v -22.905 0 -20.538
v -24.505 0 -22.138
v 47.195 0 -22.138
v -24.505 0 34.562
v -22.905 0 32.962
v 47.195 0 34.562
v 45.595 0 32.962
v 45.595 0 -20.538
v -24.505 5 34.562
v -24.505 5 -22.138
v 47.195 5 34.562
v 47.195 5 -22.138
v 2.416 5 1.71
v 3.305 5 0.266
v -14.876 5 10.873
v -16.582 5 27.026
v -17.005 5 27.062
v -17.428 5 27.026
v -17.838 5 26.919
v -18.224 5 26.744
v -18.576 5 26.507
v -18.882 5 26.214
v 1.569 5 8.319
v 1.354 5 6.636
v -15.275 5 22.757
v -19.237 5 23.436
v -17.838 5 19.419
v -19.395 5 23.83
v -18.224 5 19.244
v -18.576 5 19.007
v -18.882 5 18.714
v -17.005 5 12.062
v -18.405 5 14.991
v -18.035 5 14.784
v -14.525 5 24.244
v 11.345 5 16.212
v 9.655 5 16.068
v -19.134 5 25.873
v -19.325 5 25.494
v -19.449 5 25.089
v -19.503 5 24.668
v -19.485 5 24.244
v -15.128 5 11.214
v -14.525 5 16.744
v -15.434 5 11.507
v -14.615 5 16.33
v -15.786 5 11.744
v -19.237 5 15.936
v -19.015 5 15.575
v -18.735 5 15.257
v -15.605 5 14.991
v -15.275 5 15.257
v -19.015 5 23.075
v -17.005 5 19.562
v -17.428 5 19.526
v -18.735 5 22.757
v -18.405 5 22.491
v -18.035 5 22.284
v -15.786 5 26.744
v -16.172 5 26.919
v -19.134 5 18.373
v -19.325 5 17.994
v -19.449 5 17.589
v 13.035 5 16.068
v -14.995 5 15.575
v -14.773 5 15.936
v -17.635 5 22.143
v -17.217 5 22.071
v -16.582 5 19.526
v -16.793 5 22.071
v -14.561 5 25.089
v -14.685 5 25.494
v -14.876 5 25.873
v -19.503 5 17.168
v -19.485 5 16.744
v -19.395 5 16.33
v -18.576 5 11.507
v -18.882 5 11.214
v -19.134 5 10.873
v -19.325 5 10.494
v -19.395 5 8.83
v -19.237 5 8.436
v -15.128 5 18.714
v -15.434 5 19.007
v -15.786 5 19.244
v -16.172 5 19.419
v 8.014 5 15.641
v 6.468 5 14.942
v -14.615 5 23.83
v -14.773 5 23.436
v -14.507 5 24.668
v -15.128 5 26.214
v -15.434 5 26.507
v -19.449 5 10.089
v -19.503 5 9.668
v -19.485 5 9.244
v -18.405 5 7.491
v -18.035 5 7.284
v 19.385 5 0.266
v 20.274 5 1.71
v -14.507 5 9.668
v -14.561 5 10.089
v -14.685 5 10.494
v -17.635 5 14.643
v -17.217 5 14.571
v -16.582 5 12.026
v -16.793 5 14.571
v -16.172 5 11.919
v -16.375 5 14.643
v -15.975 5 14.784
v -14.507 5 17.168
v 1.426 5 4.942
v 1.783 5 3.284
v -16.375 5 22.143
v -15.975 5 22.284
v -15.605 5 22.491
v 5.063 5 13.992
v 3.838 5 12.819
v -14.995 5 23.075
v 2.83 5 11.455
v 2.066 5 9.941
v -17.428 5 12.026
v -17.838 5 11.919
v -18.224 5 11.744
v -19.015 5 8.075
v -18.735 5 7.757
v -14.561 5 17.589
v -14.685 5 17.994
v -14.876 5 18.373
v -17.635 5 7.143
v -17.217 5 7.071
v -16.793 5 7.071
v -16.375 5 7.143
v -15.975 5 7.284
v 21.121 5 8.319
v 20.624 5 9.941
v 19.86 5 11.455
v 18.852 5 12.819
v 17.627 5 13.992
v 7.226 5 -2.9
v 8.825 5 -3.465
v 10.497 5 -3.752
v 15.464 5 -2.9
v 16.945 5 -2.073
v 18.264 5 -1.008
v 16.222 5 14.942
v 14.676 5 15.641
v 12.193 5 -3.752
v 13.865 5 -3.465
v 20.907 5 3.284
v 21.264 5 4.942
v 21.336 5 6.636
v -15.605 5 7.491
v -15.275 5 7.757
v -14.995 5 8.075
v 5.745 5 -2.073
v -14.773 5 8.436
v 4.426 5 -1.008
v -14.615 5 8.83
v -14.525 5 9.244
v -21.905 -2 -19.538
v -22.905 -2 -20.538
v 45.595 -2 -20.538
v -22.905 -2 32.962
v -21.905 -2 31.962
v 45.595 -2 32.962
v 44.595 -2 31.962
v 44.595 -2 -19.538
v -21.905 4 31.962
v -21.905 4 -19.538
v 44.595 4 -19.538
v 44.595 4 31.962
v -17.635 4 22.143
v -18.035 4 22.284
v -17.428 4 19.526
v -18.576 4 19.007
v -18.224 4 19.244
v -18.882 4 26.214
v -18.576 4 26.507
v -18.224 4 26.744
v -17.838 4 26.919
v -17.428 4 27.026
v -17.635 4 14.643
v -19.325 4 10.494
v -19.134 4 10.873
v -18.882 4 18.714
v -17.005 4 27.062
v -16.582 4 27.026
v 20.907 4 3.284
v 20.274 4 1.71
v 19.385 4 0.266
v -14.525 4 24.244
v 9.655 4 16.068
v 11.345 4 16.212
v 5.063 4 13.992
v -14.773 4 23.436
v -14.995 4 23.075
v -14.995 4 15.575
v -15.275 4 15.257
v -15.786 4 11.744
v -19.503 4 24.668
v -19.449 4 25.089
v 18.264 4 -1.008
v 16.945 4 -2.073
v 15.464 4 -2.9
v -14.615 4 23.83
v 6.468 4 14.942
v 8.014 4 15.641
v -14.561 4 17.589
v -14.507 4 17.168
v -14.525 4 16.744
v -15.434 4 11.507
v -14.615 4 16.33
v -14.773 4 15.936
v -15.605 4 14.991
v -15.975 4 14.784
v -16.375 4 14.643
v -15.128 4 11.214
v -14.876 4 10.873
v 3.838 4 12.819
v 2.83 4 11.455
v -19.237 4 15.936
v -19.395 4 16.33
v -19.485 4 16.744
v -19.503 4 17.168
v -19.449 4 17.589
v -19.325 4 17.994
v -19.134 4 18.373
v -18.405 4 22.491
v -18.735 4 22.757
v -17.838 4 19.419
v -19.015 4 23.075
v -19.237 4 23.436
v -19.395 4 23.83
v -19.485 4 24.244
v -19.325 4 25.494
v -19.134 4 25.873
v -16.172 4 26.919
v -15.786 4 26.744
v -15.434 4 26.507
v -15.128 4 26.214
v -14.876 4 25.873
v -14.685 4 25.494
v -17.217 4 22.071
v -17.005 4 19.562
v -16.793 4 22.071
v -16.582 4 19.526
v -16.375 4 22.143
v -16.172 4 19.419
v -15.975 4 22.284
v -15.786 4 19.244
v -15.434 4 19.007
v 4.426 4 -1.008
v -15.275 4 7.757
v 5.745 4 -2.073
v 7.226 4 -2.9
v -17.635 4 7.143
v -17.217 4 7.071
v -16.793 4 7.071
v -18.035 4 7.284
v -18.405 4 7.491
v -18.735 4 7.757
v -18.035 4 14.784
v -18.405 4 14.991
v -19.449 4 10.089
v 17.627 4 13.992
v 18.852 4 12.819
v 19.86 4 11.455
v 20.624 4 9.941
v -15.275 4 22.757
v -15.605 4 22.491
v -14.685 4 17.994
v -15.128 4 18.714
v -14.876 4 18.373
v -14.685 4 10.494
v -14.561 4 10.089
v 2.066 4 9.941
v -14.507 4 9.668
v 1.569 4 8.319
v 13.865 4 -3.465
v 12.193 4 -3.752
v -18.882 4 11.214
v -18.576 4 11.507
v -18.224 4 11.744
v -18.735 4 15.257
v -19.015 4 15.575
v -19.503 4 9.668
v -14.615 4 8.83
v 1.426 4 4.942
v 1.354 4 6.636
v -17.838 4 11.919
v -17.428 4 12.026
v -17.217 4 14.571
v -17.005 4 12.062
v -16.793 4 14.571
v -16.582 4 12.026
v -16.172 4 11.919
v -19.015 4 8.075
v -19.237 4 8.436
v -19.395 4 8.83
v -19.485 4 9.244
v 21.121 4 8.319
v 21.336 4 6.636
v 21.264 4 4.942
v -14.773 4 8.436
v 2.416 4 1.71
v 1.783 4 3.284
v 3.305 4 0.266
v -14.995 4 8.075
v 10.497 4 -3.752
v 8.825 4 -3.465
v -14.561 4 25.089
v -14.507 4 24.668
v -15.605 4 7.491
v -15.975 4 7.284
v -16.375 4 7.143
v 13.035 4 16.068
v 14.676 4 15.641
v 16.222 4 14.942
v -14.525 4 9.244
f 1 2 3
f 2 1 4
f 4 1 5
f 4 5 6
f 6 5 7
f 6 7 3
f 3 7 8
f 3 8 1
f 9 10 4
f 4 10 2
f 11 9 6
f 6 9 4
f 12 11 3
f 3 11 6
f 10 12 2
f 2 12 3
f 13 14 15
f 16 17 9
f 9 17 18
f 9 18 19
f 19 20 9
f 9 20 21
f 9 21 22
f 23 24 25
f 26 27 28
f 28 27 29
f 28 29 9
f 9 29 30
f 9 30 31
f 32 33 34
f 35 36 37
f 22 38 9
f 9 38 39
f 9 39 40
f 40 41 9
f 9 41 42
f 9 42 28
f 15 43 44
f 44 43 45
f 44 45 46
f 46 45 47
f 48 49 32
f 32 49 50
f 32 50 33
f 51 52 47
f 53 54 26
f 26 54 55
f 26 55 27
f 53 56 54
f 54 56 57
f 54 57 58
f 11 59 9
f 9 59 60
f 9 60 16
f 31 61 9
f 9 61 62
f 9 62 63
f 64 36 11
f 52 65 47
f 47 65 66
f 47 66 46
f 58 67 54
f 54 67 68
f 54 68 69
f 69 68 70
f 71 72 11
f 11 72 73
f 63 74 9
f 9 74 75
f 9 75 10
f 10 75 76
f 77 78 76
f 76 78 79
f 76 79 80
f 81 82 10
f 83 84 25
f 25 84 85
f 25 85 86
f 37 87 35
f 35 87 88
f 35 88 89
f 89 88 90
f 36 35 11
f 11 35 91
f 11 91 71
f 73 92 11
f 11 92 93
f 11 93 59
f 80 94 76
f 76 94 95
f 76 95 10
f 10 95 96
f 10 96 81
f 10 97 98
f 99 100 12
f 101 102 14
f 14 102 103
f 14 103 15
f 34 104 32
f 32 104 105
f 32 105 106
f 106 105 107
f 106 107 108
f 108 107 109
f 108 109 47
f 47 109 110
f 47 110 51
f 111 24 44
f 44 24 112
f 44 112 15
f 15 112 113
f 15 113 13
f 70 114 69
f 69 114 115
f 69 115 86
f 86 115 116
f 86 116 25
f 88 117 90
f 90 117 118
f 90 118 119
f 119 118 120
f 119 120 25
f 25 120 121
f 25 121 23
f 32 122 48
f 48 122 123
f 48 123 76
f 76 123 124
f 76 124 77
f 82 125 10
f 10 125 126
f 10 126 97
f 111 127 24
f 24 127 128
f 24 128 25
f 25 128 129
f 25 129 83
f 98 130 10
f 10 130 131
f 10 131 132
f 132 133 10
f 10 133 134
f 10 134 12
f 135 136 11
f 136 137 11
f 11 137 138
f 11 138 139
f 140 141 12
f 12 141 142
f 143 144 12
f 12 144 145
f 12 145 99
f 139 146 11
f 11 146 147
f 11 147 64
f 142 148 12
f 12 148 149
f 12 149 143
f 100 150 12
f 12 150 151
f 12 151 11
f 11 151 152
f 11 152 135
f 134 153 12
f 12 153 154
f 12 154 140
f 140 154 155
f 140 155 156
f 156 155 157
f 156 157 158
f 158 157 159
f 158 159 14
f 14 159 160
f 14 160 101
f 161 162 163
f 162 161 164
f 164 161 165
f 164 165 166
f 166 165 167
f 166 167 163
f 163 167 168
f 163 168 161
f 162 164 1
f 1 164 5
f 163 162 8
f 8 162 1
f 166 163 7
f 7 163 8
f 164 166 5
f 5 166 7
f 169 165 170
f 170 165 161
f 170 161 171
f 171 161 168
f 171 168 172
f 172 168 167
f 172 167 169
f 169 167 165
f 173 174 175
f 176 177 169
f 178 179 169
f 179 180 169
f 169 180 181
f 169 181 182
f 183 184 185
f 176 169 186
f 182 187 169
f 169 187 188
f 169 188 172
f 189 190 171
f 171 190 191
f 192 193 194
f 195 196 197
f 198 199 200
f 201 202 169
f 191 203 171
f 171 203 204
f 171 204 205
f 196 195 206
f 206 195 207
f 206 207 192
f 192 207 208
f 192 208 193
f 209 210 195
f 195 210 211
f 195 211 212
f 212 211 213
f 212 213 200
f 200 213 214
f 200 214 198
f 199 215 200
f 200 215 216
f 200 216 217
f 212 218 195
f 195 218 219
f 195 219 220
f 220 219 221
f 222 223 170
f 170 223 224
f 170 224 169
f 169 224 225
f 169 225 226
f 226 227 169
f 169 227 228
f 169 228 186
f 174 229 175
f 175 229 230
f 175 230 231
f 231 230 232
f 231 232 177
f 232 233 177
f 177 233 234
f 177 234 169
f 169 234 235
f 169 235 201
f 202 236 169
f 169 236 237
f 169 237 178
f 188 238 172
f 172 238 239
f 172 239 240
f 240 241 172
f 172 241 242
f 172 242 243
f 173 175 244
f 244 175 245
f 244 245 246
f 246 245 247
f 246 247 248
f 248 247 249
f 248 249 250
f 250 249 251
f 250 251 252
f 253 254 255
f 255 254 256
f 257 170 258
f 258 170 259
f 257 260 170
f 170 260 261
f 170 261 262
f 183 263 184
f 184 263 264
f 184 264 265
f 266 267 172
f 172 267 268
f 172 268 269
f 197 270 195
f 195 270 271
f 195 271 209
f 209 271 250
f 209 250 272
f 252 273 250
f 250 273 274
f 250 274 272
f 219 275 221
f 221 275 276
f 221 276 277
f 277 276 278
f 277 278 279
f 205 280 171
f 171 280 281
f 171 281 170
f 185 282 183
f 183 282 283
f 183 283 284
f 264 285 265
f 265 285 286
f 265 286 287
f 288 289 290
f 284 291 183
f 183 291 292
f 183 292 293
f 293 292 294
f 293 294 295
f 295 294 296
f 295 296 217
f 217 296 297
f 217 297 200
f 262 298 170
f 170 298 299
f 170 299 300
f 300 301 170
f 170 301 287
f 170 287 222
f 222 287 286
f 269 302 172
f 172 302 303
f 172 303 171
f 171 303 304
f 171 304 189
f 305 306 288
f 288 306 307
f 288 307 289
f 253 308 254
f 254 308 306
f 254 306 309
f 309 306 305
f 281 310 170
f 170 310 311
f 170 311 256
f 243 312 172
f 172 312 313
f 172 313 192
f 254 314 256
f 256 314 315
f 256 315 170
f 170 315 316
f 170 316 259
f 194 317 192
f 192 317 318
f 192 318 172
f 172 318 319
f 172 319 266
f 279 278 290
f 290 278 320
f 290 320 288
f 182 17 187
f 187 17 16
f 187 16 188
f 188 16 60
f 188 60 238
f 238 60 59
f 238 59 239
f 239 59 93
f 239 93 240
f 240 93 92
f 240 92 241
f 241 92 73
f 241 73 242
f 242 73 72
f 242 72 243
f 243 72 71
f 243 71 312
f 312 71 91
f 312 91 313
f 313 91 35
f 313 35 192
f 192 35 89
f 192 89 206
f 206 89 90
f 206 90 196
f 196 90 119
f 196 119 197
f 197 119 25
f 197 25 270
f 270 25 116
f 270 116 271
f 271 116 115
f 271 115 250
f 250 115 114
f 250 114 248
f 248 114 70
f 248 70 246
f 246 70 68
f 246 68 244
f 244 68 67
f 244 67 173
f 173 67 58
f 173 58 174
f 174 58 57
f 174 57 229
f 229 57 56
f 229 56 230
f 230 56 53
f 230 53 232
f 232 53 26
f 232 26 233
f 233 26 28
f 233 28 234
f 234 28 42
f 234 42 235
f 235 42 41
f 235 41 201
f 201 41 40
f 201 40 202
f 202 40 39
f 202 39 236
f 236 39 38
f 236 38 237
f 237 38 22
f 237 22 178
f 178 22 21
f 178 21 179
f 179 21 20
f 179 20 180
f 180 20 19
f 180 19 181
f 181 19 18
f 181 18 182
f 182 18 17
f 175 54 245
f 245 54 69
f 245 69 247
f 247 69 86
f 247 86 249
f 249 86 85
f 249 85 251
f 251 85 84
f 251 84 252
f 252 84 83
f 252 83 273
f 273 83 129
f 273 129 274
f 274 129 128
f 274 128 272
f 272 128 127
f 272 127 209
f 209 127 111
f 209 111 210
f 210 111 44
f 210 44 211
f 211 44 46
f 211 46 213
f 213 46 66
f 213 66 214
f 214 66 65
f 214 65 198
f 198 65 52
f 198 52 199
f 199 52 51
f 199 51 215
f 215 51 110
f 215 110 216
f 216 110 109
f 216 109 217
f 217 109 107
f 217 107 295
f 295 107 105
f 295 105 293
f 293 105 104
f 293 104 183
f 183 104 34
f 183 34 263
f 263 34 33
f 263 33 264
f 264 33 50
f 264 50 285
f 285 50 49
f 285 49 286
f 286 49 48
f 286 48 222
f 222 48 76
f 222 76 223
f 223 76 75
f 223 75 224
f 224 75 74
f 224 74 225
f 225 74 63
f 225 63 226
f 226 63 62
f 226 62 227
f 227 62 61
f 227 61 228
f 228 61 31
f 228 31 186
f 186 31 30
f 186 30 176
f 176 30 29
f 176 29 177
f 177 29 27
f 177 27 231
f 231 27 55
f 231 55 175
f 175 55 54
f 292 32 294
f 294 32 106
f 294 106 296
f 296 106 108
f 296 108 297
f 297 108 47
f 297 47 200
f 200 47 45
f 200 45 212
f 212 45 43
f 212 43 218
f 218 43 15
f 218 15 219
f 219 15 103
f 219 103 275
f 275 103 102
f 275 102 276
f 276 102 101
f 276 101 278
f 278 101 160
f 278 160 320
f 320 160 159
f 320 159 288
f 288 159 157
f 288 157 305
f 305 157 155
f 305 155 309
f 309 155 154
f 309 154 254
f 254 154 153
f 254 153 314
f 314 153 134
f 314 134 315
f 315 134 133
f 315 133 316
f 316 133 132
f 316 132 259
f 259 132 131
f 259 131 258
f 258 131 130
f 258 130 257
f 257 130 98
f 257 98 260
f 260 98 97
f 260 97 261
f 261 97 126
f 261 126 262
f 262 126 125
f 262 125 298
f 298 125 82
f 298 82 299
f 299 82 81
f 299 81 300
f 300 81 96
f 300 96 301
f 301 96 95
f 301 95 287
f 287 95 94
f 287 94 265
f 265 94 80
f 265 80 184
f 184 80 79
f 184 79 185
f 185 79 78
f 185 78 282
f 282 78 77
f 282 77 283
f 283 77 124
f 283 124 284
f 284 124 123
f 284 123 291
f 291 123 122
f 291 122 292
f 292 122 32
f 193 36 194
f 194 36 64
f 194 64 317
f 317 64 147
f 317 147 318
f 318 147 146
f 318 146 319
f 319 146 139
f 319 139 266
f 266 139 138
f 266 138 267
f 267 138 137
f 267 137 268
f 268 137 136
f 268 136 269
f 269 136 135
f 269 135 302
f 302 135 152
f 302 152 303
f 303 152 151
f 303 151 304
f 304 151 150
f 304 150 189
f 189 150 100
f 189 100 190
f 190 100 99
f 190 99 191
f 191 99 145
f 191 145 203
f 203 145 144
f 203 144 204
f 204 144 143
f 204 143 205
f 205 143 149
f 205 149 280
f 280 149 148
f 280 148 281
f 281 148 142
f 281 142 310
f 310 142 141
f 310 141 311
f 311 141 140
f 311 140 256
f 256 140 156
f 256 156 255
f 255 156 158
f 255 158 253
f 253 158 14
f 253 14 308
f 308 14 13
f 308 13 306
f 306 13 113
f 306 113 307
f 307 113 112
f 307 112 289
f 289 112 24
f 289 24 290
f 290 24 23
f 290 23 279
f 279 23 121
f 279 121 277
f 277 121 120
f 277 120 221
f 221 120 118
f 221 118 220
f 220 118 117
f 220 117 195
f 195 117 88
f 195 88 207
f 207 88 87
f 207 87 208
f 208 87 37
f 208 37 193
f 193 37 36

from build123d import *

# Parameters (mm, degrees)
SKETCH1_W           = 71.7
SKETCH1_H           = 56.7
BOSS_EXTRUDE1_DEPTH = 5
SKETCH2_W           = 68.5
SKETCH2_H           = 53.5
SKETCH2_W_2         = 66.5
SKETCH2_H_2         = 51.5
BOSS_EXTRUDE2_DEPTH = 2
SKETCH2_2_W         = 66.5
SKETCH2_2_H         = 51.5
CUT_EXTRUDE1_DEPTH  = 4
SKETCH3_R           = 2.5
SKETCH3_R_2         = 10
CUT_EXTRUDE2_DEPTH  = 1


with BuildPart() as part:
    # Sketch1 → Boss-Extrude1 (new body)
    with BuildSketch(Plane(origin=(0, 0, 0), x_dir=(1, 0, 0), z_dir=(0, 1, 0))):
        with Locations((11.345000373, -6.211960564)):
            Rectangle(SKETCH1_W, SKETCH1_H)
    extrude(amount=BOSS_EXTRUDE1_DEPTH)

    # Sketch2 → Boss-Extrude2 (add)
    with BuildSketch(Plane.XZ):
        with Locations((11.345000373, 6.211960564)):
            Rectangle(SKETCH2_W, SKETCH2_H)
        with Locations((11.345000373, 6.211960564)):
            Rectangle(SKETCH2_W_2, SKETCH2_H_2, mode=Mode.SUBTRACT)
    extrude(amount=BOSS_EXTRUDE2_DEPTH)

    # Sketch2<2> → Cut-Extrude1 (cut)
    with BuildSketch(Plane.XZ):
        with Locations((11.345000373, 6.211960564)):
            Rectangle(SKETCH2_2_W, SKETCH2_2_H)
    extrude(amount=-CUT_EXTRUDE1_DEPTH, mode=Mode.SUBTRACT)

    # Sketch3 → Cut-Extrude2 (cut)
    with BuildSketch(Plane(origin=(0, 5, 0), x_dir=(1, 0, 0), z_dir=(0, 1, 0))):
        with Locations((-17.004999627, -24.561960564)):
            Circle(SKETCH3_R)
        with Locations((-17.004999627, -17.061960564)):
            Circle(SKETCH3_R)
        with Locations((-17.004999627, -9.561960564)):
            Circle(SKETCH3_R)
        with Locations((11.345000373, -6.211960564)):
            Circle(SKETCH3_R_2)
    extrude(amount=-CUT_EXTRUDE2_DEPTH, mode=Mode.SUBTRACT)


solid = part.part
